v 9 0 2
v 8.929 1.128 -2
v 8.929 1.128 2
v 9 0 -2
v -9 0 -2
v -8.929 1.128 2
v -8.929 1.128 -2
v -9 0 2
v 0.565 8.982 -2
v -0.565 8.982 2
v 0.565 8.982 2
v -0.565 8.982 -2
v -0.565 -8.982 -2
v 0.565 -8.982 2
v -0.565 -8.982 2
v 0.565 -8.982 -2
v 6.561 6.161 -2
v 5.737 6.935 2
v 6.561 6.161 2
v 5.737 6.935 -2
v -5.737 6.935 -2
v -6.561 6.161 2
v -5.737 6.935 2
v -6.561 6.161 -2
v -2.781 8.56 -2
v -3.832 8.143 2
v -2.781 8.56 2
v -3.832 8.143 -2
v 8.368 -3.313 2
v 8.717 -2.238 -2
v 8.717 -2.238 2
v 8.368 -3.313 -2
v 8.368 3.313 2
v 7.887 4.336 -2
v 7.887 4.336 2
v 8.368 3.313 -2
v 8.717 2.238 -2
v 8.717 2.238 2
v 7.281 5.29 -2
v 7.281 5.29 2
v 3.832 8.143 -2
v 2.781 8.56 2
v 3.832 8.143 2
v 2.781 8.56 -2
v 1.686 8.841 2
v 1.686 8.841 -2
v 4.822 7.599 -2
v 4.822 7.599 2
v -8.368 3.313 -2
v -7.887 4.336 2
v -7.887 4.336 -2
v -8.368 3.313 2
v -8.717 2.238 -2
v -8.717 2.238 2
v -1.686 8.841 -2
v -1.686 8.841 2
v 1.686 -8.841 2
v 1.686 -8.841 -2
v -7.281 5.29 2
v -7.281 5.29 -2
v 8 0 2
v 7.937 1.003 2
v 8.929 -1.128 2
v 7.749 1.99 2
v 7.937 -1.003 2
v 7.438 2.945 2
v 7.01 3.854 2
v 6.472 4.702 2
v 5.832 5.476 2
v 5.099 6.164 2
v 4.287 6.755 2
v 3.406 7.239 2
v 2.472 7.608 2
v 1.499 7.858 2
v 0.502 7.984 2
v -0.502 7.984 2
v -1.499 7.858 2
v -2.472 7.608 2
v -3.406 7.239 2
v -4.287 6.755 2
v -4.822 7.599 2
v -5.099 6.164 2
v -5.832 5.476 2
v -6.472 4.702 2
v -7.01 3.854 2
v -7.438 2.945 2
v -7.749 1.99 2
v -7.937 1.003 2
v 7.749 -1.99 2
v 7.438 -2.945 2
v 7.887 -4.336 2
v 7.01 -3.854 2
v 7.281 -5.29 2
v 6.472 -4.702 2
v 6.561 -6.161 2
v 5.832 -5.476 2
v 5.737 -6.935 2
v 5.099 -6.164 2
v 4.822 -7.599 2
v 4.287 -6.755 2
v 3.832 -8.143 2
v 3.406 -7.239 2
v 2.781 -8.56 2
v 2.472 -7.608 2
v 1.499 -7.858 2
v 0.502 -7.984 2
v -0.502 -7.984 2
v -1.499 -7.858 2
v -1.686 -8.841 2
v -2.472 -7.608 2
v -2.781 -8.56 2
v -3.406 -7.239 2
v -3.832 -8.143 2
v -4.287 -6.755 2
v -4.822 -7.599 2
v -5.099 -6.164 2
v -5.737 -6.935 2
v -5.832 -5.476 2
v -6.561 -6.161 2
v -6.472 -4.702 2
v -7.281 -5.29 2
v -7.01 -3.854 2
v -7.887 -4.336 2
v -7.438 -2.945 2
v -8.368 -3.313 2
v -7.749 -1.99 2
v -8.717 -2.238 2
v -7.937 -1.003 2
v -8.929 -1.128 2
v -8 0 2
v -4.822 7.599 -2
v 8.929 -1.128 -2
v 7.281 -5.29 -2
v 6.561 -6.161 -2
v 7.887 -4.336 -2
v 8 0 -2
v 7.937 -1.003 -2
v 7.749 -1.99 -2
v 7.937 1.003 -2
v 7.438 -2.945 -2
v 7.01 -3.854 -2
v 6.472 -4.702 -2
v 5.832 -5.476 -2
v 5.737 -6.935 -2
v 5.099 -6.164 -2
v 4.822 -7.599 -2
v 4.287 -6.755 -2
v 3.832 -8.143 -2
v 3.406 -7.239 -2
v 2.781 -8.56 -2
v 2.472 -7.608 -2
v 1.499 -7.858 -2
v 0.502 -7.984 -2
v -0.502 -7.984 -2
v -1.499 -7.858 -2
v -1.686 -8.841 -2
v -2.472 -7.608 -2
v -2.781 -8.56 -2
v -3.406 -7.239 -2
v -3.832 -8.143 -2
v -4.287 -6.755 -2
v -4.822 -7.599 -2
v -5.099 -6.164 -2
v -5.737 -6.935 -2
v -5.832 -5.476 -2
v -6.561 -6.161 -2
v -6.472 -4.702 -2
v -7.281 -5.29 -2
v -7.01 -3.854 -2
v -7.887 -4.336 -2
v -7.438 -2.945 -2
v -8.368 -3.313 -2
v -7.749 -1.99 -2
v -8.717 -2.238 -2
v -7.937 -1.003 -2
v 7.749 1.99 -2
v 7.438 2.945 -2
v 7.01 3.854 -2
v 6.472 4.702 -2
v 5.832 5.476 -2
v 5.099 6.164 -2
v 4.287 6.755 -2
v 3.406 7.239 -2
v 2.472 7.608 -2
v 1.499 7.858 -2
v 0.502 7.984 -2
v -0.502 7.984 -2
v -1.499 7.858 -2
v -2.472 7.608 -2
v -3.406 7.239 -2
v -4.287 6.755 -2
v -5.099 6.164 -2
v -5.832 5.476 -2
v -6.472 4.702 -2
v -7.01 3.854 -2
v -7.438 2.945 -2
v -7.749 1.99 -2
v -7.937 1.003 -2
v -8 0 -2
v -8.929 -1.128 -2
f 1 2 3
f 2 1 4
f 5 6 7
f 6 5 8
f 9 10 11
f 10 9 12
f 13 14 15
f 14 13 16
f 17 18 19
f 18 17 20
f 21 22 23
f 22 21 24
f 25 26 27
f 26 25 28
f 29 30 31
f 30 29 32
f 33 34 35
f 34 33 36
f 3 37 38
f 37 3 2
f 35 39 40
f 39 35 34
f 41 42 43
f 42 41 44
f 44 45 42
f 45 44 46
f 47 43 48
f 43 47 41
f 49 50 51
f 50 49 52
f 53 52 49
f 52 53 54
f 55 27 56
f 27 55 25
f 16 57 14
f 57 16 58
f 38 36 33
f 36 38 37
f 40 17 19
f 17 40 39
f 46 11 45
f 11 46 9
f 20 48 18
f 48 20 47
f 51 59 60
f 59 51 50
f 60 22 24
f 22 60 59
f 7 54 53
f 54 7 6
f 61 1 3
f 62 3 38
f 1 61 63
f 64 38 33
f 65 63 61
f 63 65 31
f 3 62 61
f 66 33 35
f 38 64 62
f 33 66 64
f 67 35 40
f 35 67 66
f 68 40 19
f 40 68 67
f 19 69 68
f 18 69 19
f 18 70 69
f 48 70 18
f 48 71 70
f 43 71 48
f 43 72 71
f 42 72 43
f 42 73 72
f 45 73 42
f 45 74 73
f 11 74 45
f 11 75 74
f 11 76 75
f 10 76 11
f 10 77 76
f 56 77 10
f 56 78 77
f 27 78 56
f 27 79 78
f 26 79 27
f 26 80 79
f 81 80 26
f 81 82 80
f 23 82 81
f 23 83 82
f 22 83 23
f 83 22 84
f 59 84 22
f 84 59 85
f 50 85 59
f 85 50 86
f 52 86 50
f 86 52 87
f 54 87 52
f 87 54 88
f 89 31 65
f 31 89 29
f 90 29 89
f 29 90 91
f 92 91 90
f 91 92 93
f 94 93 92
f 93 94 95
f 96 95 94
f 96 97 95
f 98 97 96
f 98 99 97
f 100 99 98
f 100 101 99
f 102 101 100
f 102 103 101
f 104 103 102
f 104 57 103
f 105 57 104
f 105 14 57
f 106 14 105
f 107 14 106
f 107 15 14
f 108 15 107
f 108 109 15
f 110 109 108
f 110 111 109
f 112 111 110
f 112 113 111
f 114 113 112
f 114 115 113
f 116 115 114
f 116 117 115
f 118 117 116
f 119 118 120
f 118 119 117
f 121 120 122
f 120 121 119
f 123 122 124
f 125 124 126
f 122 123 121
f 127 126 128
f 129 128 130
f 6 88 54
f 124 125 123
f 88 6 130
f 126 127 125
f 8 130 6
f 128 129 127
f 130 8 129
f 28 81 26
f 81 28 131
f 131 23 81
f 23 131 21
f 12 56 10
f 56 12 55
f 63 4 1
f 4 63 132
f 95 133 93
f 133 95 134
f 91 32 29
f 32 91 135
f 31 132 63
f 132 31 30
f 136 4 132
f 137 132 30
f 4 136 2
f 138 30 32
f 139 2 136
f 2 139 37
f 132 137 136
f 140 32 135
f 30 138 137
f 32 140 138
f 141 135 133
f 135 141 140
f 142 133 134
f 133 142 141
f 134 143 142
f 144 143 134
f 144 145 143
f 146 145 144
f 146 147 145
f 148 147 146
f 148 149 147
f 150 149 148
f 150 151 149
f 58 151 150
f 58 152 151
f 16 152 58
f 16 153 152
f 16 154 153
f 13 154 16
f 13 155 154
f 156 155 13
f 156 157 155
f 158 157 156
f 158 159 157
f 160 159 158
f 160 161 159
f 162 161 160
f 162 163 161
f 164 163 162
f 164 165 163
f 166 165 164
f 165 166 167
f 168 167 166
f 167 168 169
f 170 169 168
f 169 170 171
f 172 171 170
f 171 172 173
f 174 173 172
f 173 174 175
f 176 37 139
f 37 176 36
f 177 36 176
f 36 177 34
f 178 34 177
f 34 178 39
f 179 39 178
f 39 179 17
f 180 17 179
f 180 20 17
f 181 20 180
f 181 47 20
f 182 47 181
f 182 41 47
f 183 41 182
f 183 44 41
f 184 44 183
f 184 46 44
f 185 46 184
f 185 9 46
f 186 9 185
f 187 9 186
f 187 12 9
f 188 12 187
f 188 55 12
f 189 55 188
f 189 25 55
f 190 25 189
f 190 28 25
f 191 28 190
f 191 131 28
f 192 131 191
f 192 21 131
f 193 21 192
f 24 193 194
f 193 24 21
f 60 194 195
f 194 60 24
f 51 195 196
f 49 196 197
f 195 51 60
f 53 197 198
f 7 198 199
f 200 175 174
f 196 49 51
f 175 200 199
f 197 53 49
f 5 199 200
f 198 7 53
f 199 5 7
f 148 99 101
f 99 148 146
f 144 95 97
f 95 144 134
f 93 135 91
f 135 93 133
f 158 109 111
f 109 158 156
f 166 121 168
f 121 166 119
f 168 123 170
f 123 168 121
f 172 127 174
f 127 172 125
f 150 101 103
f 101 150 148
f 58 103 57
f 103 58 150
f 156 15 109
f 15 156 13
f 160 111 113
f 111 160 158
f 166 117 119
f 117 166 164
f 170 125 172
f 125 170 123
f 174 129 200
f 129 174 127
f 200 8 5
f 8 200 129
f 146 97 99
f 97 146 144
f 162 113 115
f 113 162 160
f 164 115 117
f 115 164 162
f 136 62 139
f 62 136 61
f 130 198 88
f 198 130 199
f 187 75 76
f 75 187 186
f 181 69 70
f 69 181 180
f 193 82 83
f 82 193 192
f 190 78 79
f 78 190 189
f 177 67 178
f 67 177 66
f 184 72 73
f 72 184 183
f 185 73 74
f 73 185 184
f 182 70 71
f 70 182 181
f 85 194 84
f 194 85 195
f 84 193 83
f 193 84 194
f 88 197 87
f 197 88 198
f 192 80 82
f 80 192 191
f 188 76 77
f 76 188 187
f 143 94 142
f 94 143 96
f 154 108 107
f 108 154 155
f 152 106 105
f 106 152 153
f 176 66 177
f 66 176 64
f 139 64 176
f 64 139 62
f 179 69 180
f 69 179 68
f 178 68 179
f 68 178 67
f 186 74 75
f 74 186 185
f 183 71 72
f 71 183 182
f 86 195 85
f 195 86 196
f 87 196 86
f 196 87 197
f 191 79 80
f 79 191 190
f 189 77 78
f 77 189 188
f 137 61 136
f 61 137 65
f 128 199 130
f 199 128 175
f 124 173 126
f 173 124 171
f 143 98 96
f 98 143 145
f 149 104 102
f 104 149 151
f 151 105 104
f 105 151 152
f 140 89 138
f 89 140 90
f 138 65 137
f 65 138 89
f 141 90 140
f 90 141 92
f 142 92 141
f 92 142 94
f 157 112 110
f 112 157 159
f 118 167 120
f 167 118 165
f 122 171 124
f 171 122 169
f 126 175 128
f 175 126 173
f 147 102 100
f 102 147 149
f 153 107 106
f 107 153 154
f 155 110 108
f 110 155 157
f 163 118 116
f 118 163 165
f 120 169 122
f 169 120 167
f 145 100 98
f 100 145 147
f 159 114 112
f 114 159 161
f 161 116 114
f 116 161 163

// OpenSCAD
$fn = 50;


difference() {
	union() {
		translate(v = [0, 0, -2.0000000000]) {
			cylinder(h = 4, r = 9.0000000000);
		}
	}
	union() {
		translate(v = [0, 0, -100.0000000000]) {
			cylinder(h = 200, r = 8);
		}
	}
}
